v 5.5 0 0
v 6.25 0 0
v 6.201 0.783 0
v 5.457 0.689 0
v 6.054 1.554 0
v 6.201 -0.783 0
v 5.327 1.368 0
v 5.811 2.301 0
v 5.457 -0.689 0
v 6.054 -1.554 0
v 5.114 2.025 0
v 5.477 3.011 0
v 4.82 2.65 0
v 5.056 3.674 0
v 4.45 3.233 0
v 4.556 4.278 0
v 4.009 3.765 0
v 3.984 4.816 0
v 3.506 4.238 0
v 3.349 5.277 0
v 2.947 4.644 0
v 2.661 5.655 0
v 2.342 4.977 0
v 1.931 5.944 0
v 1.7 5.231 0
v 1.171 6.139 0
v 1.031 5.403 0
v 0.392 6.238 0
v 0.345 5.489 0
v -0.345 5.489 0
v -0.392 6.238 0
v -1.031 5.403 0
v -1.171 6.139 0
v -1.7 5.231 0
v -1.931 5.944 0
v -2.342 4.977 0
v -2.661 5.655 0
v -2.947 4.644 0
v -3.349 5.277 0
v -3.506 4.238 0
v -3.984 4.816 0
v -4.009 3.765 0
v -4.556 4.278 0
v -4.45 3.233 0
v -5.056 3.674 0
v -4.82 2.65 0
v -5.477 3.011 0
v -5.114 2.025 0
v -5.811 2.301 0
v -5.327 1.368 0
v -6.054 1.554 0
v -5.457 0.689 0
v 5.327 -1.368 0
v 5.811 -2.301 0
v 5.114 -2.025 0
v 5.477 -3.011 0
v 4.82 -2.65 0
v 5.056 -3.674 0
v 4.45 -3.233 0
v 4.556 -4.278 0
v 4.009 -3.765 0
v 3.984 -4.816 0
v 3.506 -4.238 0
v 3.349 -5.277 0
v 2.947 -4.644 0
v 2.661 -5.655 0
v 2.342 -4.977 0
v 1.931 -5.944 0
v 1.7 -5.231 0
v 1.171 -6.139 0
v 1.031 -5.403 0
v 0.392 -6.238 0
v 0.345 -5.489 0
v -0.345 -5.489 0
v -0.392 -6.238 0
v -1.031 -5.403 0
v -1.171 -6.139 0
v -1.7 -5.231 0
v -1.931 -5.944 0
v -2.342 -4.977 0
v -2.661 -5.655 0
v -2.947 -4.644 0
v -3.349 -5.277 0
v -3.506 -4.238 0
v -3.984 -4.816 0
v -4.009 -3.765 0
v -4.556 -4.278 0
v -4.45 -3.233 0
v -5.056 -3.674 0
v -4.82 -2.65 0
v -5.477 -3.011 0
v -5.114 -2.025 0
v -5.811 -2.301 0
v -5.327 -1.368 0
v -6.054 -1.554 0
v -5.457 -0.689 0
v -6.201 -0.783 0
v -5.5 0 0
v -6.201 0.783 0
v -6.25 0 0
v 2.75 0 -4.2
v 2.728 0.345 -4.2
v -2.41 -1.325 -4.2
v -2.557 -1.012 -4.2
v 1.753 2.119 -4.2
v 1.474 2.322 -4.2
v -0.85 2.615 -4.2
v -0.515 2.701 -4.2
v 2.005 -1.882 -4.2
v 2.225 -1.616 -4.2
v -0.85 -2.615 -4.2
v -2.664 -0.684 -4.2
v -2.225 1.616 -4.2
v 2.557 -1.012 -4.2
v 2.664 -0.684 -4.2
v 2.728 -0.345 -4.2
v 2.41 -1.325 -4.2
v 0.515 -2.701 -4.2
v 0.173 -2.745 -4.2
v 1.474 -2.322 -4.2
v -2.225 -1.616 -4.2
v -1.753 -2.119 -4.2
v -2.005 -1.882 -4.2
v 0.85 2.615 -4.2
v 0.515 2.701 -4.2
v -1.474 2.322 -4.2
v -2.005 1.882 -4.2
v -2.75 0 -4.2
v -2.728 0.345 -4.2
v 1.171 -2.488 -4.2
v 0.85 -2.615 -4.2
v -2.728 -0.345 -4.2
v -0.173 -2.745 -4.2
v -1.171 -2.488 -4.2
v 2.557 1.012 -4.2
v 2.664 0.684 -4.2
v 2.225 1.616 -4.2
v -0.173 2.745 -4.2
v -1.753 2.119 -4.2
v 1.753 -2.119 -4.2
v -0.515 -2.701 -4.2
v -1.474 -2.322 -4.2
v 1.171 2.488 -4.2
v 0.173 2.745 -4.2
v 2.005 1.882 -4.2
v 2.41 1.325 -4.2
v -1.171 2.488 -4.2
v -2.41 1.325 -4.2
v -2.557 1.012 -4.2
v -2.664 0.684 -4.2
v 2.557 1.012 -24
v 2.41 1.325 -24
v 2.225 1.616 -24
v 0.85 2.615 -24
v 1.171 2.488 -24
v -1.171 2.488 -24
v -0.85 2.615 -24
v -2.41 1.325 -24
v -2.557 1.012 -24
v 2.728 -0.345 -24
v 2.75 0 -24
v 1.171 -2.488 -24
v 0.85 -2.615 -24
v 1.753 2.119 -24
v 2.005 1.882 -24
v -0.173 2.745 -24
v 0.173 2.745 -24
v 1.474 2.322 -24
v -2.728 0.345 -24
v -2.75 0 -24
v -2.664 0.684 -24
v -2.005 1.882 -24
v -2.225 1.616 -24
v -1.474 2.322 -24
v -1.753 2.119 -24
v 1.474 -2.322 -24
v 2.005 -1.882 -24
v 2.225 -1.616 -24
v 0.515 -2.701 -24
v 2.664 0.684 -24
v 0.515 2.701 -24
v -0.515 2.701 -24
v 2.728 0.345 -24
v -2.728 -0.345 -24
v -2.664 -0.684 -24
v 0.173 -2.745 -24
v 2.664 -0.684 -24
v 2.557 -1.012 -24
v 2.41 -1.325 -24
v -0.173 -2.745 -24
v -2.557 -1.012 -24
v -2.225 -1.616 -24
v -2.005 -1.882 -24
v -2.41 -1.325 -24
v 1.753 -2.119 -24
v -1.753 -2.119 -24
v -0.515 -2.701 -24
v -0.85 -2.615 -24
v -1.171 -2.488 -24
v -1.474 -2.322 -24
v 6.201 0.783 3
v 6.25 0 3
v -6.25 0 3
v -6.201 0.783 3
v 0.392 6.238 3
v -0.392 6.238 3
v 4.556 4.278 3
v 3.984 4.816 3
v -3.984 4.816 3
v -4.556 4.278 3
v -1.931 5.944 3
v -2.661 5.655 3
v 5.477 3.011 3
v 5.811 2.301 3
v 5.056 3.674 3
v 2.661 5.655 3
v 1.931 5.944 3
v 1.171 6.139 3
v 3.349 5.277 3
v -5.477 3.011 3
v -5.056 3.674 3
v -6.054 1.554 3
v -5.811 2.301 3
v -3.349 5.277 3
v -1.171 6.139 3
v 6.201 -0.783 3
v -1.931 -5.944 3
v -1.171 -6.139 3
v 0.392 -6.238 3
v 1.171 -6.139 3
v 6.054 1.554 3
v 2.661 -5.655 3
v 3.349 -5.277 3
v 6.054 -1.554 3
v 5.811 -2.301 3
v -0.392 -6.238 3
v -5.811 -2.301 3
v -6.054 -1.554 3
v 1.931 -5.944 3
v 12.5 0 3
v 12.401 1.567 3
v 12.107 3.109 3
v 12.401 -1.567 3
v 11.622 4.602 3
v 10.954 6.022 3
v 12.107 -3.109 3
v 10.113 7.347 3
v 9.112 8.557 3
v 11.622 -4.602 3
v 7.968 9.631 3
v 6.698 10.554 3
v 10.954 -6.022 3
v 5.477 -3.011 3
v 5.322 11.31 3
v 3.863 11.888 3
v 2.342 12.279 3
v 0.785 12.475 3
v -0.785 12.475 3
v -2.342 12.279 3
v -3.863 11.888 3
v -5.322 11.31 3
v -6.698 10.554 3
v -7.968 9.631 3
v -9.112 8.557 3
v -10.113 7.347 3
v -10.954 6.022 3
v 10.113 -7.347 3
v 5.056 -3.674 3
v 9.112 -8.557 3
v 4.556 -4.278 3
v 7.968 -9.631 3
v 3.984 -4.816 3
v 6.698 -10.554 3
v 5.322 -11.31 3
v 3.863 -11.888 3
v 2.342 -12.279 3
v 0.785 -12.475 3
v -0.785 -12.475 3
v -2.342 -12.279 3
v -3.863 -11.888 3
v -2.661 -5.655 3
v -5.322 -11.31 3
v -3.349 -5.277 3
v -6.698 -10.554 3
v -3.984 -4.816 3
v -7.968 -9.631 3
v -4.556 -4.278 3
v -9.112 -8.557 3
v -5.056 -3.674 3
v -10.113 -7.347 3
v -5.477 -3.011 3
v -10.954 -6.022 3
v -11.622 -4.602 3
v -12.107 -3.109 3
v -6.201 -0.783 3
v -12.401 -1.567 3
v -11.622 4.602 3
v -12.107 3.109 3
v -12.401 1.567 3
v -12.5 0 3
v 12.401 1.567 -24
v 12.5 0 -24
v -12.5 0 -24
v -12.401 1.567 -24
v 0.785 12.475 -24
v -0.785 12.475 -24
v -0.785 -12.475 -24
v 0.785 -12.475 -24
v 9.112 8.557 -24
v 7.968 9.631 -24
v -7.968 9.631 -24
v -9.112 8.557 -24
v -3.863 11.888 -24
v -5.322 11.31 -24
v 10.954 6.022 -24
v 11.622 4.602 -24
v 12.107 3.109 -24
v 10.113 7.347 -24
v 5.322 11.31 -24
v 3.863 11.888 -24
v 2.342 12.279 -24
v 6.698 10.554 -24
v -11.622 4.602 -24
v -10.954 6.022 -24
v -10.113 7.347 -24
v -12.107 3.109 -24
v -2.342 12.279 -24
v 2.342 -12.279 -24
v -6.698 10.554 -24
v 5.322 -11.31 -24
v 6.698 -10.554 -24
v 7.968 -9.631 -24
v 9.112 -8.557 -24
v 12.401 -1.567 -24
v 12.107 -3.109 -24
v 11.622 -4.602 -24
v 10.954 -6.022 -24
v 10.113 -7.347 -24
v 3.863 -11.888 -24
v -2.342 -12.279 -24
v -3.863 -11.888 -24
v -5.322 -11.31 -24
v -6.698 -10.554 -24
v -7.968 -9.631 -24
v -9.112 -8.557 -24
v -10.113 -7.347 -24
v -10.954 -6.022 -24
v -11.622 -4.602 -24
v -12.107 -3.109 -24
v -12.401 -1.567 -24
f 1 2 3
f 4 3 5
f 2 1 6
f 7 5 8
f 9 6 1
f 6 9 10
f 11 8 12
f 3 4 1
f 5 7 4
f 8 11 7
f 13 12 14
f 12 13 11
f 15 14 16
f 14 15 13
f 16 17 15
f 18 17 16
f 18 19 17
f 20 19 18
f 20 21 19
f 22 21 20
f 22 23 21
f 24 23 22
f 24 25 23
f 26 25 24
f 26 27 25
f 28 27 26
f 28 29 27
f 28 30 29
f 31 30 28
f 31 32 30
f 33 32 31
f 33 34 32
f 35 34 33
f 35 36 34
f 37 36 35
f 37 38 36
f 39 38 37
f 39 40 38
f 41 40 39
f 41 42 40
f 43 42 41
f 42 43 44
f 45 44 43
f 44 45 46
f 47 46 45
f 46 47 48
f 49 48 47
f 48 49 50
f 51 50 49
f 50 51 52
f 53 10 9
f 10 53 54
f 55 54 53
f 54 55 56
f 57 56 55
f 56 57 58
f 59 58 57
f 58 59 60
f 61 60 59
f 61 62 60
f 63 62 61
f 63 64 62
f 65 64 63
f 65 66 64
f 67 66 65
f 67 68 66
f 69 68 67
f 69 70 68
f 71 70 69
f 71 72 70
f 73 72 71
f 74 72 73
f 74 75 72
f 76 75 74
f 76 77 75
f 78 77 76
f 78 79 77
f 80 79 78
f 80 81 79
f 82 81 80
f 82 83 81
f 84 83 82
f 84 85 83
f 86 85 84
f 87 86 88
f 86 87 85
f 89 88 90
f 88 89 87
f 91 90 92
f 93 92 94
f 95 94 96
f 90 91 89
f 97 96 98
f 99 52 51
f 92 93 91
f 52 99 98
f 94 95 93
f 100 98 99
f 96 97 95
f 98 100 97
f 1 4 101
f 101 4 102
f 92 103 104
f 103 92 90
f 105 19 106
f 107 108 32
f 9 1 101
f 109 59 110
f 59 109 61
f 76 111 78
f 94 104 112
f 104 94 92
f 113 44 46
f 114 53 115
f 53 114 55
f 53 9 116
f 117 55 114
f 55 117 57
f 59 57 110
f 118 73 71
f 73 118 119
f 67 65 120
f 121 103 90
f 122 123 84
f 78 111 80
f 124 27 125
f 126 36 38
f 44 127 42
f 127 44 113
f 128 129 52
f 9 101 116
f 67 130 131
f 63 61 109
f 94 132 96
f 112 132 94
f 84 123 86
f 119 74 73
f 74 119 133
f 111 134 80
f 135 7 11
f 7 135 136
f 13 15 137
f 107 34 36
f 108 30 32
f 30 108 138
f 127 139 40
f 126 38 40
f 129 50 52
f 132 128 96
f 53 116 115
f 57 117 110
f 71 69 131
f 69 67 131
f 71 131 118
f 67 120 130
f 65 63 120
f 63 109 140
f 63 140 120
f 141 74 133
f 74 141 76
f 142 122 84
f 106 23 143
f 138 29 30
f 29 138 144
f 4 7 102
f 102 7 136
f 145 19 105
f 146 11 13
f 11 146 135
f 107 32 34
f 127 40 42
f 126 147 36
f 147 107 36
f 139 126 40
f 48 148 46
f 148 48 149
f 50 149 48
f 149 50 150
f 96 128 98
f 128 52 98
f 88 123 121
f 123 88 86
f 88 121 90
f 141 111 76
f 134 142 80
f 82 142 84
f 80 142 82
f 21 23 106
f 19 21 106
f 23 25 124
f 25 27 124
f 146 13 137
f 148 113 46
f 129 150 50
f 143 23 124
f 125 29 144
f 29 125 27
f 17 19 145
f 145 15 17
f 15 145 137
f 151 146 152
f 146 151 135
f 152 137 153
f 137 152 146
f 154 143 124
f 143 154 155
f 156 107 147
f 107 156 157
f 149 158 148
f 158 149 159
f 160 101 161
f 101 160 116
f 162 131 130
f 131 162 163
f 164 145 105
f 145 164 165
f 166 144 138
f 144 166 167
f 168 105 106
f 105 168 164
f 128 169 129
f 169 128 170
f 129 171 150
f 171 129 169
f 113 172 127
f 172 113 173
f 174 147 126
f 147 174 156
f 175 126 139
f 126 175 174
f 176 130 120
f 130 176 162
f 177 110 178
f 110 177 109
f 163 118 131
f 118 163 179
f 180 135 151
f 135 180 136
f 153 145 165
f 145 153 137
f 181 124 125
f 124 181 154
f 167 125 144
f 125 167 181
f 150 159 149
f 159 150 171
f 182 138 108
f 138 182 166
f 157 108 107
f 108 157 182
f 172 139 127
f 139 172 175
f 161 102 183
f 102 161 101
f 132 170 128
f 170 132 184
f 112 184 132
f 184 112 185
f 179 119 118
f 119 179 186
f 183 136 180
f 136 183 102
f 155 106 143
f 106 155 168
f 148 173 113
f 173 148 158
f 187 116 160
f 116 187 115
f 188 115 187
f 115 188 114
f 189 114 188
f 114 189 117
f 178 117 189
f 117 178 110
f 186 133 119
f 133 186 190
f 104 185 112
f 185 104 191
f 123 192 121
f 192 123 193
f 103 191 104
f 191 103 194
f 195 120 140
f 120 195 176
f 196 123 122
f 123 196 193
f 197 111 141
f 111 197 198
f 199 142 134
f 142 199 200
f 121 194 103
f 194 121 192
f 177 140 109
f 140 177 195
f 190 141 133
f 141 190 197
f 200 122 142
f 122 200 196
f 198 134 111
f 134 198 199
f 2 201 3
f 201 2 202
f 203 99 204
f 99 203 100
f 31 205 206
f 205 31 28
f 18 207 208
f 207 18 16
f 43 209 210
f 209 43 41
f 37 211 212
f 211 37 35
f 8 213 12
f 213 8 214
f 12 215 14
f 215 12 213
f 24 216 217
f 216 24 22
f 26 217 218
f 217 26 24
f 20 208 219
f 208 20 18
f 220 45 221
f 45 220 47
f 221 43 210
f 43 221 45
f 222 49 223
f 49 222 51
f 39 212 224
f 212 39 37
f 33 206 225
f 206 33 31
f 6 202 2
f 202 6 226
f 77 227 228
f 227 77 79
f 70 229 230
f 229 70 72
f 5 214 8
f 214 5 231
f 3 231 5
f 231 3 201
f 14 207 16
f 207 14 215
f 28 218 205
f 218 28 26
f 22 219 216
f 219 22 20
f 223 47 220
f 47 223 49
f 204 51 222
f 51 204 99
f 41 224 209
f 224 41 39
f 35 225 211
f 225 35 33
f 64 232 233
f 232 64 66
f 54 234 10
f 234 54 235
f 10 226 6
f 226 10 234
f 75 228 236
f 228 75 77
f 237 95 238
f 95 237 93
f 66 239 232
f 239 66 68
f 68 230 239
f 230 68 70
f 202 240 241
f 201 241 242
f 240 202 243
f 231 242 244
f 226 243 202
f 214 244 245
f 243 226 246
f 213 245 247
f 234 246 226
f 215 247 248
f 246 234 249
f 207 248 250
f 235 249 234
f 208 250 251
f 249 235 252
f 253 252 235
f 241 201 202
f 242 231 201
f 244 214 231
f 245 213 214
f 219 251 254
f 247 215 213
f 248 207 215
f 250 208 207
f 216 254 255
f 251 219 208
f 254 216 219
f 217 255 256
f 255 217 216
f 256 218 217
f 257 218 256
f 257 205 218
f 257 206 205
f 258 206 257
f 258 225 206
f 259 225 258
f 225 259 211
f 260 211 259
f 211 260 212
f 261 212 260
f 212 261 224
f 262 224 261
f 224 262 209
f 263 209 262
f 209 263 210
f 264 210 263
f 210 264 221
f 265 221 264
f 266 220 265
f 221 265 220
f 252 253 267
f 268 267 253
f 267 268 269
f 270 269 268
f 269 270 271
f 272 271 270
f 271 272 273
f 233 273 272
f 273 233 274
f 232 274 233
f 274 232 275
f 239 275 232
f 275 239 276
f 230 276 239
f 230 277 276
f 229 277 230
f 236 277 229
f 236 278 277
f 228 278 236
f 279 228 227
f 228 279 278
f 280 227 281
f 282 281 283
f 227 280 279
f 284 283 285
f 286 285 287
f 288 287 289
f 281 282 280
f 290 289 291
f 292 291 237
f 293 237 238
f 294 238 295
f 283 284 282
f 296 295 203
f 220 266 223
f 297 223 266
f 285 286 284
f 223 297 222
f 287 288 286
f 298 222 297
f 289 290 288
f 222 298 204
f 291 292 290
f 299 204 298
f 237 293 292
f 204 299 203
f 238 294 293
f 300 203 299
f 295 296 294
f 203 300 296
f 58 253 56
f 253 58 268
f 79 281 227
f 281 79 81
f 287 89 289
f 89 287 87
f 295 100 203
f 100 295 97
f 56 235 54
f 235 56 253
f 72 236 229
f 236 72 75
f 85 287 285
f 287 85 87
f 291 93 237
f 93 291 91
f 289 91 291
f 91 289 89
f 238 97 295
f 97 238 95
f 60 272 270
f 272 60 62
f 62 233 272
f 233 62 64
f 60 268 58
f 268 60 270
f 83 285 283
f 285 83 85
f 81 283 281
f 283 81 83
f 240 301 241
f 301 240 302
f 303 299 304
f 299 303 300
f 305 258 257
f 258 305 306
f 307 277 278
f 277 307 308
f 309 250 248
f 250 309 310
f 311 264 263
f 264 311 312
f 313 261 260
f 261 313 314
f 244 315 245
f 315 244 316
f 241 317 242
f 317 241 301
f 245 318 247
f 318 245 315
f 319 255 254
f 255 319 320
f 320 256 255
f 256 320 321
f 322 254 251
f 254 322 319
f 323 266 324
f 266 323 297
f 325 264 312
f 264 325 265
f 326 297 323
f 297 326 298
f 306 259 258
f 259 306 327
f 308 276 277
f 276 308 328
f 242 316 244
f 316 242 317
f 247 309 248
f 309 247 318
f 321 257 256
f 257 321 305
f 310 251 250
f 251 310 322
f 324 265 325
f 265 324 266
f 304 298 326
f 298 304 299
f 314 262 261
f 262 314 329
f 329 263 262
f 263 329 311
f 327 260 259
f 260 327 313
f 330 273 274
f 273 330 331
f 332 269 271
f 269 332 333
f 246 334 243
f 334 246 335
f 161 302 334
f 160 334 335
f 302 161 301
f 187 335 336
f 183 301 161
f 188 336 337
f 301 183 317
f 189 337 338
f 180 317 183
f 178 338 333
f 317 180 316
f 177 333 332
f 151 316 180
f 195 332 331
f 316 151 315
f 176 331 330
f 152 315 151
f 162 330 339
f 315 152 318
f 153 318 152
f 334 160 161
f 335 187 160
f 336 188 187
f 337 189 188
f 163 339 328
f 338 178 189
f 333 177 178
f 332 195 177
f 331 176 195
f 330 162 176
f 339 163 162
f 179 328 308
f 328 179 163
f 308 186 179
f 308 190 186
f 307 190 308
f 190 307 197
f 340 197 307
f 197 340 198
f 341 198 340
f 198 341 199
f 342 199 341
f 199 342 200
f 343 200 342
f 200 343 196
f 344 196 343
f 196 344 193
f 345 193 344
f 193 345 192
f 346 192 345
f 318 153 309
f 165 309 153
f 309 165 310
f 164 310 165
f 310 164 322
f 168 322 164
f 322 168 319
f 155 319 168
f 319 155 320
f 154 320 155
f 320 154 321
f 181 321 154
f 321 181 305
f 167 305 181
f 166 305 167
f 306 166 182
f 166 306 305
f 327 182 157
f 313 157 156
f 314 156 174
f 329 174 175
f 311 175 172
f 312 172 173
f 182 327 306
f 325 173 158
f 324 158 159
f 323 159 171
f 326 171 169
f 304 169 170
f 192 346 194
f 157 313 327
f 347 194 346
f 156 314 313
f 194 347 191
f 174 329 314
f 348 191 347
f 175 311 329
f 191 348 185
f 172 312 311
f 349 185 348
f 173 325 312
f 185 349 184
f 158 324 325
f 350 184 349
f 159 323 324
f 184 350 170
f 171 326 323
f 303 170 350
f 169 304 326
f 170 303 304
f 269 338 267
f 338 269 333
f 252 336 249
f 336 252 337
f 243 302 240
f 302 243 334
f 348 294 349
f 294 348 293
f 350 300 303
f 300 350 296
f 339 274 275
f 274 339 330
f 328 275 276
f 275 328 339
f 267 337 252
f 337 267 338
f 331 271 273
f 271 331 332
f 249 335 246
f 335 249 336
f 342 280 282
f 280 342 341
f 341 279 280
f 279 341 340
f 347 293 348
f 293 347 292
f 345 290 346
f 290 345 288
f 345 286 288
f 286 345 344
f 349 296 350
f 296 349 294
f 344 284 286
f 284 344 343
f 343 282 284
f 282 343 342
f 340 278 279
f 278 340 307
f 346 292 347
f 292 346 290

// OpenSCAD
$fn = 50;

difference() {
	union() {
		translate(v = [0, 0, -24.0]) {
			cylinder(h = 27, r = 12.5);
		}
	}
	union() {
		translate(v = [0, 0, 0]) {
			rotate(a = [0, 0, 0]) {
				difference() {
					union() {
						translate(v = [0, 0, -27.0]) {
							cylinder(h = 27, r = 2.25);
						}
						translate(v = [0, 0, -4.2]) {
							cylinder(h = 4.2, r1 = 2.75, r2 = 5.5);
						}
						translate(v = [0, 0, -27.0]) {
							cylinder(h = 27, r = 2.75);
						}
						translate(v = [0, 0, -27.0]) {
							cylinder(h = 27, r = 2.25);
						}
					}
					union();
				}
			}
		}
		#cylinder(h = 3, r = 6.25);
	}
}
